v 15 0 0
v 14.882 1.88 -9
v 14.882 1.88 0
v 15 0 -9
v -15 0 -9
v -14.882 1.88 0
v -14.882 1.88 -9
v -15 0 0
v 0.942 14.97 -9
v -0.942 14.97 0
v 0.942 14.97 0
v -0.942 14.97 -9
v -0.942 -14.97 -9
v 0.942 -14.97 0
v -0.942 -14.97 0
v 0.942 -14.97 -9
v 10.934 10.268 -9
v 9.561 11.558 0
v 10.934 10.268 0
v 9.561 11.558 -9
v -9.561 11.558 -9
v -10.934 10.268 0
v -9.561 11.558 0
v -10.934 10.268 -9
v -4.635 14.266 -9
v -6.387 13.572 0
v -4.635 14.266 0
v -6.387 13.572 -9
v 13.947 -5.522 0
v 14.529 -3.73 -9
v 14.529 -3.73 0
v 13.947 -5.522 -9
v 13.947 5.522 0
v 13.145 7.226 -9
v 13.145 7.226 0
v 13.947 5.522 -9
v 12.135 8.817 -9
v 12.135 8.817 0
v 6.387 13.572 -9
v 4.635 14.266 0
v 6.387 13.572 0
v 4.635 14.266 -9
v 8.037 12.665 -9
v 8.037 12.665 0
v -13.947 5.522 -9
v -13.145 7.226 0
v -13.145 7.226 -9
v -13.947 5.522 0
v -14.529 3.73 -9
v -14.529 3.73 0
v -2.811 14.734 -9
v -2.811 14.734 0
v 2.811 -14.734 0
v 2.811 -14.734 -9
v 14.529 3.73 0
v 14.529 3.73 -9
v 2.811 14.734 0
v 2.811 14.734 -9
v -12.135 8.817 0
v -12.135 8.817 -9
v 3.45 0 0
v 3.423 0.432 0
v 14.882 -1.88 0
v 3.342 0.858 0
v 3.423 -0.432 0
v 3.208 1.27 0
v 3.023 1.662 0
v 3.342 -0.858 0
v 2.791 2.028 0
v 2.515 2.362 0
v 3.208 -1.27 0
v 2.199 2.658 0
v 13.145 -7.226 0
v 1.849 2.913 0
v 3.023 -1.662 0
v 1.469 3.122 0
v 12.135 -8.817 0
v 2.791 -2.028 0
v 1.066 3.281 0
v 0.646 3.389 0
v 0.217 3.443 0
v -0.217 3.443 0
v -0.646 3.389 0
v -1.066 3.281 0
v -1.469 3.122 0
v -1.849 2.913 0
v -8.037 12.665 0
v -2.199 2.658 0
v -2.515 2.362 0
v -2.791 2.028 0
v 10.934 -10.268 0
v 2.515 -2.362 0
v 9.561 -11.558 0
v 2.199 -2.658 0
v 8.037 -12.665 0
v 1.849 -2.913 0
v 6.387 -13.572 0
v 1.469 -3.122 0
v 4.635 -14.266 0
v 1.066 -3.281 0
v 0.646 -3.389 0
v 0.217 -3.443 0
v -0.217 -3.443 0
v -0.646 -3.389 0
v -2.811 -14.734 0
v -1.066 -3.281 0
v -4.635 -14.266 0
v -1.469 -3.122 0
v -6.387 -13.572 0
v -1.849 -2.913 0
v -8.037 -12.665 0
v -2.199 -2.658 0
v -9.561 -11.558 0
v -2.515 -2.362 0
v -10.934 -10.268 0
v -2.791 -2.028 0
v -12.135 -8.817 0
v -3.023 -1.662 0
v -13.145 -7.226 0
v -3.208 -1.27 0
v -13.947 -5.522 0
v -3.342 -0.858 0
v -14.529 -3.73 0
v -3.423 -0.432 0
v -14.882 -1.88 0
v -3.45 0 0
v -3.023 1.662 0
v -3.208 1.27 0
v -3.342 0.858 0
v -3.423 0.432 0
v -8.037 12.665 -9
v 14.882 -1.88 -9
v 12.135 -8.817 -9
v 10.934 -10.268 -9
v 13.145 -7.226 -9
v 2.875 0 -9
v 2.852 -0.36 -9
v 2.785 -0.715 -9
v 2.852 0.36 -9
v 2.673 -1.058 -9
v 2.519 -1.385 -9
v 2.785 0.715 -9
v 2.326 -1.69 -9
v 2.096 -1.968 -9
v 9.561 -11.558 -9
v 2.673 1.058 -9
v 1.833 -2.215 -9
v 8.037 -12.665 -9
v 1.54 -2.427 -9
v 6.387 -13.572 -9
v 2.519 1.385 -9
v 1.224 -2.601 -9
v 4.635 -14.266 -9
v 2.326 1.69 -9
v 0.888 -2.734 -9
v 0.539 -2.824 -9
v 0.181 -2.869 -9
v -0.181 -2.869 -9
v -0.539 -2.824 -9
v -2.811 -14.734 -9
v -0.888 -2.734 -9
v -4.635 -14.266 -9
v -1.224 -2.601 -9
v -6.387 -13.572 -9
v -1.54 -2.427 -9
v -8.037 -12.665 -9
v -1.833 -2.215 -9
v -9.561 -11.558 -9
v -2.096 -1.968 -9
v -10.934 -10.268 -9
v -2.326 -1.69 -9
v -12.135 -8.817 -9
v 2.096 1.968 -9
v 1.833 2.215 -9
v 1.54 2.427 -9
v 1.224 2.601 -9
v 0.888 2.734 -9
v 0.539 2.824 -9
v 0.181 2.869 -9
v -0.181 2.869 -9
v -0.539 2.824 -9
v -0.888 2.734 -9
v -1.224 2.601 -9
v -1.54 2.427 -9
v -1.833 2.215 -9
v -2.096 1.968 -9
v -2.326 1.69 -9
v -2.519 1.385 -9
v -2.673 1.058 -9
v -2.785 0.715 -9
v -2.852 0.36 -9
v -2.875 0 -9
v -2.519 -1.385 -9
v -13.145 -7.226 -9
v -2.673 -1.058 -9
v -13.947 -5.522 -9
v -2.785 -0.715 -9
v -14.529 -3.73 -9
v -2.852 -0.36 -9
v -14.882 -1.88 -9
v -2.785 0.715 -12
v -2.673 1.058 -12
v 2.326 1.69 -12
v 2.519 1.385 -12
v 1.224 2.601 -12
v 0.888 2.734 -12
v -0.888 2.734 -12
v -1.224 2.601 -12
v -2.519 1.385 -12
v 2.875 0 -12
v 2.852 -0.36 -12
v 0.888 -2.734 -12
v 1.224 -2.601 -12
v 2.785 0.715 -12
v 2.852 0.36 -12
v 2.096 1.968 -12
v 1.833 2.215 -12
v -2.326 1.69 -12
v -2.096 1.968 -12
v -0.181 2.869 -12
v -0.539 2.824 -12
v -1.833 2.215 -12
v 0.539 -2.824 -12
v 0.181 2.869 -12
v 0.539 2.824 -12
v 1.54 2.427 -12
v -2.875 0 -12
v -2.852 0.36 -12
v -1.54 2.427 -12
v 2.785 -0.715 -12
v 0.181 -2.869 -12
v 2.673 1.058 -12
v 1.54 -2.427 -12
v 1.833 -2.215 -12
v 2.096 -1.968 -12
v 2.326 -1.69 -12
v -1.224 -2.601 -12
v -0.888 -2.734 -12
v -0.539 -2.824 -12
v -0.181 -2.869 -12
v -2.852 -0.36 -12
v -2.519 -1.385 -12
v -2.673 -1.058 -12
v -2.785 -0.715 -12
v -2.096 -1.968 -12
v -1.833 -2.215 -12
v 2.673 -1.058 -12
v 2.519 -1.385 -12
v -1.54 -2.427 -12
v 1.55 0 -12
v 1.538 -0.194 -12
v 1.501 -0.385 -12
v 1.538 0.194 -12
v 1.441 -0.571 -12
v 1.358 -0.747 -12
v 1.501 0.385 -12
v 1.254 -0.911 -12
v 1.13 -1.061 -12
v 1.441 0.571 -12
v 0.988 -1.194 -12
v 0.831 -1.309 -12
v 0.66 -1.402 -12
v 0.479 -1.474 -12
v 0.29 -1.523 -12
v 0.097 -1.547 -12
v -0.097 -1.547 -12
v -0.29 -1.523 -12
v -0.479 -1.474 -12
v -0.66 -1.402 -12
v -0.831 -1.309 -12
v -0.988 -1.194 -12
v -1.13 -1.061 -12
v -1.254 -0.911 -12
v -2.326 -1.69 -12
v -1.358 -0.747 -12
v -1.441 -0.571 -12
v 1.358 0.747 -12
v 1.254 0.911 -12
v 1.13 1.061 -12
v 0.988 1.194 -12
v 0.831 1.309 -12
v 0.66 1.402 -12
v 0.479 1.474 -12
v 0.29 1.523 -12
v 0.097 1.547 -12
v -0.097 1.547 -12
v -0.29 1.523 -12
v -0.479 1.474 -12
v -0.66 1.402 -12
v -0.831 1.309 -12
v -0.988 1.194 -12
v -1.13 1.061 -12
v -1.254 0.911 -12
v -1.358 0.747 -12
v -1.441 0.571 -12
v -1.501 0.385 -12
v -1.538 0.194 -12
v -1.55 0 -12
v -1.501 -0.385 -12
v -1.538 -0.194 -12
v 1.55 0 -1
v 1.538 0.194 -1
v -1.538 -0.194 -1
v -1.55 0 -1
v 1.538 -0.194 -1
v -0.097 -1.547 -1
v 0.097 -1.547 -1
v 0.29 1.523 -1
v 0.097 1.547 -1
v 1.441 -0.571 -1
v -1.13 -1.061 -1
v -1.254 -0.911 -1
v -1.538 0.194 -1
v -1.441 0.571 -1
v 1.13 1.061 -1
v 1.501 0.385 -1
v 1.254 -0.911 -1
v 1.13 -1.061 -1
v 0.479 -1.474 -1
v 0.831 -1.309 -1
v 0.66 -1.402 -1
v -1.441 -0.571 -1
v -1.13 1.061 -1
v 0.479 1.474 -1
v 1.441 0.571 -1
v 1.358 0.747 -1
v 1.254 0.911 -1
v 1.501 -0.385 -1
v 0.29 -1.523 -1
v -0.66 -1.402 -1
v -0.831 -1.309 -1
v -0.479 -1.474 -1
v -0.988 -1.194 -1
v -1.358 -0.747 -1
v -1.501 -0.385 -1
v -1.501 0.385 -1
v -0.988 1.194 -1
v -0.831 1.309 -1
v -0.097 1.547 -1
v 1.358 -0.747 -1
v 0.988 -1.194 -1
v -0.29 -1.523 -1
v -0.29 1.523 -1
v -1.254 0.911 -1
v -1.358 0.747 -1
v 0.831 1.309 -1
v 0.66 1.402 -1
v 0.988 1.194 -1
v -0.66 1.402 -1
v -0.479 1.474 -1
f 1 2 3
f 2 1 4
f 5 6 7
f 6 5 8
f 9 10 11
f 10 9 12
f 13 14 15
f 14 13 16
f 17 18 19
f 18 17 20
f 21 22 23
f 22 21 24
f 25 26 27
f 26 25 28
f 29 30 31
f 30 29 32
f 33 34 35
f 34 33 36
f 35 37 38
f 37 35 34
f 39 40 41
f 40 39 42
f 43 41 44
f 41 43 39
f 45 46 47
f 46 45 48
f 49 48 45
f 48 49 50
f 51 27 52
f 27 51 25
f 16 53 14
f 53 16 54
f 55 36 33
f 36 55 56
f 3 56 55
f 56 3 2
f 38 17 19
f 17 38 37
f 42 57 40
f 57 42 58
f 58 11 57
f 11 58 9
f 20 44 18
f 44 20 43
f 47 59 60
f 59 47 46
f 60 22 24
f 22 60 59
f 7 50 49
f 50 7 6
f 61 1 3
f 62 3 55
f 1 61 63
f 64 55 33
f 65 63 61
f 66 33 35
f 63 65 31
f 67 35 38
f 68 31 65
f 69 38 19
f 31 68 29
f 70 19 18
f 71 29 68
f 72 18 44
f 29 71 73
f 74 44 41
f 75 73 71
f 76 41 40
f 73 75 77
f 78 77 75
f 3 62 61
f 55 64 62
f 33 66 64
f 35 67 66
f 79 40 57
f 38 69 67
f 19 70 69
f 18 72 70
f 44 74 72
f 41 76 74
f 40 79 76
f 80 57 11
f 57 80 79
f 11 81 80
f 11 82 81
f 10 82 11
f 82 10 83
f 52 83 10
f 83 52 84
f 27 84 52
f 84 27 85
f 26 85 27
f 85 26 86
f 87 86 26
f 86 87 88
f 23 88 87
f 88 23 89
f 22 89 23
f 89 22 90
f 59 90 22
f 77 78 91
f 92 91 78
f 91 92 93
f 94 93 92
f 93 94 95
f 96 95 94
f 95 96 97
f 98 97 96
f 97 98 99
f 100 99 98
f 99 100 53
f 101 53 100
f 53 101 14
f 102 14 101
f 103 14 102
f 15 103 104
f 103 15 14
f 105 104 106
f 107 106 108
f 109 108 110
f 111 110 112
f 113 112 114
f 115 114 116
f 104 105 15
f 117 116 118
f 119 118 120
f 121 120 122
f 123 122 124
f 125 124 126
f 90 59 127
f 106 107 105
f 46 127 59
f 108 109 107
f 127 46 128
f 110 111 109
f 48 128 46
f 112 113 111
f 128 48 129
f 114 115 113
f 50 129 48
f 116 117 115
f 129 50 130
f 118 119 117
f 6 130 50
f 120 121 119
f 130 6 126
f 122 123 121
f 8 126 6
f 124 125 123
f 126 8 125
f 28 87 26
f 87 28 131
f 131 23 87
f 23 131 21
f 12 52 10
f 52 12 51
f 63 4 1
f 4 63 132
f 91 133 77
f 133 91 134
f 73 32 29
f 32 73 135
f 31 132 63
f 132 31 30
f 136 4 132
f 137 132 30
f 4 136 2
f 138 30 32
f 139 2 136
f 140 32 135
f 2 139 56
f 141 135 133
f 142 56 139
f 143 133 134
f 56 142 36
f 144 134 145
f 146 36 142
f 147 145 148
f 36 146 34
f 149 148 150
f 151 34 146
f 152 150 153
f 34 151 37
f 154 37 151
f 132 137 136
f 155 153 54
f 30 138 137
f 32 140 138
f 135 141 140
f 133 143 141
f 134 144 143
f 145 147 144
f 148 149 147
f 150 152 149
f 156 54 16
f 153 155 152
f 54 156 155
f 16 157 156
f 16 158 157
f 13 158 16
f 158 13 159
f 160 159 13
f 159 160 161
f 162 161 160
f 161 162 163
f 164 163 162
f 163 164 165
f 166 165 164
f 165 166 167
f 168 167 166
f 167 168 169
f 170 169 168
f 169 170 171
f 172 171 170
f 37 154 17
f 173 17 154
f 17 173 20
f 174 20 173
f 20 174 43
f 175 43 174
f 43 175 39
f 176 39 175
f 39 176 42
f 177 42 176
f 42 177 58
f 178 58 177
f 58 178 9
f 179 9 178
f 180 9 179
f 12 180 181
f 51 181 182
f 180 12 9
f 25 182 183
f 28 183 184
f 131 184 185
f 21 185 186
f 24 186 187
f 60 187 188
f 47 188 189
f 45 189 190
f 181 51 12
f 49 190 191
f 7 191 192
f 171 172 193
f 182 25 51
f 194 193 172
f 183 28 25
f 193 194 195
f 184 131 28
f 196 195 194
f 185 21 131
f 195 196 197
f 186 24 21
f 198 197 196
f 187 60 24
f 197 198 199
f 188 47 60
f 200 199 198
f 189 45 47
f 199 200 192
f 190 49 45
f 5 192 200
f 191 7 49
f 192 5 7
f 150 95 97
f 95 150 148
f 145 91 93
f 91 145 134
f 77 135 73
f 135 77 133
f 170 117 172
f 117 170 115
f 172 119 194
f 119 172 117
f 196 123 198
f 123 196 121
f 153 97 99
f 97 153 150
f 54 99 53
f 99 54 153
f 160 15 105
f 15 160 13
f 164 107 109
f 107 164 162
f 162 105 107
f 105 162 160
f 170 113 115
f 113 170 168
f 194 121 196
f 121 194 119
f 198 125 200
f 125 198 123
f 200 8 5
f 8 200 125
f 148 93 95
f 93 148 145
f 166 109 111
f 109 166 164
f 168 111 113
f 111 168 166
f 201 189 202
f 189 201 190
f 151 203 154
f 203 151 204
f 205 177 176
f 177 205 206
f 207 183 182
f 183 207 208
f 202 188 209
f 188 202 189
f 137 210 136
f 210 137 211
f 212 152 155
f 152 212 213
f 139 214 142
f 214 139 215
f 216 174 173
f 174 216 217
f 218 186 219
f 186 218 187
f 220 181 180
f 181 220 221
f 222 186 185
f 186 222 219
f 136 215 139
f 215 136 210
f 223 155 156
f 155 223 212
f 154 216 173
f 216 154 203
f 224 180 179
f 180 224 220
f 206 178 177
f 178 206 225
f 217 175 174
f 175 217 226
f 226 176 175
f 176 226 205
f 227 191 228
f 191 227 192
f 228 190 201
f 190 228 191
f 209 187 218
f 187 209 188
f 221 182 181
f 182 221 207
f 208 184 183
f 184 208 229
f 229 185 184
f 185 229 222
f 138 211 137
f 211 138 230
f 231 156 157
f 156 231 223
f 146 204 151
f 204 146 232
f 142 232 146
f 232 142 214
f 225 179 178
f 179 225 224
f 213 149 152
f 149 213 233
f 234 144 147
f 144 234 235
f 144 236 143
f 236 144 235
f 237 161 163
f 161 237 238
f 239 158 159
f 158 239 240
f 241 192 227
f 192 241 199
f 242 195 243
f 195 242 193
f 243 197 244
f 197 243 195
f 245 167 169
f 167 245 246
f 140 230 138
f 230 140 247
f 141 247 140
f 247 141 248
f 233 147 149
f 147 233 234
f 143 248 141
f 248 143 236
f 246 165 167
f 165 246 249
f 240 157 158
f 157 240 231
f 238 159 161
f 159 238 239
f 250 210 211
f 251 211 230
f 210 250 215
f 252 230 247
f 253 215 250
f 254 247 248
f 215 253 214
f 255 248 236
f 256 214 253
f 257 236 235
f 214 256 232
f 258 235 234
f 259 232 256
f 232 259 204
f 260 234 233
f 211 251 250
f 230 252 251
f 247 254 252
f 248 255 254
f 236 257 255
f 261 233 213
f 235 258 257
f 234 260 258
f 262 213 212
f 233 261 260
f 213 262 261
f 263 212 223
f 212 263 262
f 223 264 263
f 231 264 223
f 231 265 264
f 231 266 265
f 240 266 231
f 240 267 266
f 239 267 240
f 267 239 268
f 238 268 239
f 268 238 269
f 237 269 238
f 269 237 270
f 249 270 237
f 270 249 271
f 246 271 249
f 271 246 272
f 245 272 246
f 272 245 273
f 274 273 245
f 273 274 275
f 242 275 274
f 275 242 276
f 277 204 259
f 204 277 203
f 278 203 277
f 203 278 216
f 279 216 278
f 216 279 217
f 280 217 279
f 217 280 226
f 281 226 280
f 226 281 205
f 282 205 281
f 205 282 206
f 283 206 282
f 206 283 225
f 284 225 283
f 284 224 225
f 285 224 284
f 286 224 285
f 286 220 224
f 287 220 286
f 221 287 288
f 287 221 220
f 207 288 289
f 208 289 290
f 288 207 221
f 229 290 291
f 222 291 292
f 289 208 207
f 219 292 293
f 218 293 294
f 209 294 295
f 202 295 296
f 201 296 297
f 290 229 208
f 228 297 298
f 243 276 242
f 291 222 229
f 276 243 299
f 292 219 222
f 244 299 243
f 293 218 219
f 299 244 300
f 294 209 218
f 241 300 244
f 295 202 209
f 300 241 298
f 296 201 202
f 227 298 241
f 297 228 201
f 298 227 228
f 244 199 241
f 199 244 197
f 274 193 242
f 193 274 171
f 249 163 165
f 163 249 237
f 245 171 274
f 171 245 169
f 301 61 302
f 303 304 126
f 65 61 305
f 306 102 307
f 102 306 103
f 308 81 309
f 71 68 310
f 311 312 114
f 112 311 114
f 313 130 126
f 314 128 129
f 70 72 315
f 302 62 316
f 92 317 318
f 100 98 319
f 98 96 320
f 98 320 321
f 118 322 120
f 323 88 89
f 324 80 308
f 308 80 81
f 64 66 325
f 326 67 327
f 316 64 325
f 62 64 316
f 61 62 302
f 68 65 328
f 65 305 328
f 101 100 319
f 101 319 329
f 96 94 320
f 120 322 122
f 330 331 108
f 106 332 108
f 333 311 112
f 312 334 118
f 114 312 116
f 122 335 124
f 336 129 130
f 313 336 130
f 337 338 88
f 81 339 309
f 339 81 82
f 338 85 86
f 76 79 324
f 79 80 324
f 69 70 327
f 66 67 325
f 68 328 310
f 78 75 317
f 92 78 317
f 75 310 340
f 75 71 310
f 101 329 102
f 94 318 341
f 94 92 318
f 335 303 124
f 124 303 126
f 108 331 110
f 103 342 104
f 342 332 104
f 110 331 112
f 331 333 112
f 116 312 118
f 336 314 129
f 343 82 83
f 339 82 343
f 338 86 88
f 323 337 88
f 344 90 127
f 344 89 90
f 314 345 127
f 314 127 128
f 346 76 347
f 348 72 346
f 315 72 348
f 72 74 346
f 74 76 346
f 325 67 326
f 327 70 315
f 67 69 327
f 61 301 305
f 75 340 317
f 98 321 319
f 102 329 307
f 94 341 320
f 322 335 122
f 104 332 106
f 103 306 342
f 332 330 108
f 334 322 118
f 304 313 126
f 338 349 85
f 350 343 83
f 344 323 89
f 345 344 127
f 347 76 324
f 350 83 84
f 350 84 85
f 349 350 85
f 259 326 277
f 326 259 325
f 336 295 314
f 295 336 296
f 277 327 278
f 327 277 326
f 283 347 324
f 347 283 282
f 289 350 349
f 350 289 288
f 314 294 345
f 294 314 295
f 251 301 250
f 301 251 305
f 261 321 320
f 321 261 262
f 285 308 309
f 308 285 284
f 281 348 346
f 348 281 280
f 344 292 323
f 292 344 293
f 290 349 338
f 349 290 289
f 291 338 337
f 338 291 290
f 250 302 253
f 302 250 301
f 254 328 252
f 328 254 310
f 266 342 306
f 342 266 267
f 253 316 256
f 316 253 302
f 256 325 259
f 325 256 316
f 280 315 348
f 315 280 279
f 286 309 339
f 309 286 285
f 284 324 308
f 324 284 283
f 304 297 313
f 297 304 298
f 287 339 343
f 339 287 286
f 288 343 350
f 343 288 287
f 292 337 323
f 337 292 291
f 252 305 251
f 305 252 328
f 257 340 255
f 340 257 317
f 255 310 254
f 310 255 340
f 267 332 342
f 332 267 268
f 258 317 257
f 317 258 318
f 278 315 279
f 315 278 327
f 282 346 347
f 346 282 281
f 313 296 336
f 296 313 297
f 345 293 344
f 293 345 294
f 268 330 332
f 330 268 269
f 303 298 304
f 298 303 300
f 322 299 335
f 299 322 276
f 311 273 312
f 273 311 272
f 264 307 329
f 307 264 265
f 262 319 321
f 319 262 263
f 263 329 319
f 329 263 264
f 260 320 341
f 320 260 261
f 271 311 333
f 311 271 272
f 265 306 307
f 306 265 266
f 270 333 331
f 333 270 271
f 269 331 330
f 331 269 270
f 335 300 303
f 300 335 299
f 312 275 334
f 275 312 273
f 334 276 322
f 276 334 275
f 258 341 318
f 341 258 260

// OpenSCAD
$fn = 50;

difference() {
	union() {
		translate(v = [0, 0, -9.0]) {
			cylinder(h = 9, r = 15.0);
		}
		#translate(v = [0, 0, -12.0]) {
			cylinder(h = 12, r = 2.875);
		}
	}
	union() {
		translate(v = [0, 0, 0]) {
			rotate(a = [0, 0, 0]) {
				difference() {
					union() {
						translate(v = [0, 0, -12.0]) {
							cylinder(h = 12, r = 1.25);
						}
						translate(v = [0, 0, -1.0]) {
							cylinder(h = 1.0, r1 = 1.55, r2 = 3.45);
						}
						translate(v = [0, 0, -12.0]) {
							cylinder(h = 12, r = 1.55);
						}
						translate(v = [0, 0, -12.0]) {
							cylinder(h = 12, r = 1.25);
						}
					}
					union();
				}
			}
		}
	}
}
